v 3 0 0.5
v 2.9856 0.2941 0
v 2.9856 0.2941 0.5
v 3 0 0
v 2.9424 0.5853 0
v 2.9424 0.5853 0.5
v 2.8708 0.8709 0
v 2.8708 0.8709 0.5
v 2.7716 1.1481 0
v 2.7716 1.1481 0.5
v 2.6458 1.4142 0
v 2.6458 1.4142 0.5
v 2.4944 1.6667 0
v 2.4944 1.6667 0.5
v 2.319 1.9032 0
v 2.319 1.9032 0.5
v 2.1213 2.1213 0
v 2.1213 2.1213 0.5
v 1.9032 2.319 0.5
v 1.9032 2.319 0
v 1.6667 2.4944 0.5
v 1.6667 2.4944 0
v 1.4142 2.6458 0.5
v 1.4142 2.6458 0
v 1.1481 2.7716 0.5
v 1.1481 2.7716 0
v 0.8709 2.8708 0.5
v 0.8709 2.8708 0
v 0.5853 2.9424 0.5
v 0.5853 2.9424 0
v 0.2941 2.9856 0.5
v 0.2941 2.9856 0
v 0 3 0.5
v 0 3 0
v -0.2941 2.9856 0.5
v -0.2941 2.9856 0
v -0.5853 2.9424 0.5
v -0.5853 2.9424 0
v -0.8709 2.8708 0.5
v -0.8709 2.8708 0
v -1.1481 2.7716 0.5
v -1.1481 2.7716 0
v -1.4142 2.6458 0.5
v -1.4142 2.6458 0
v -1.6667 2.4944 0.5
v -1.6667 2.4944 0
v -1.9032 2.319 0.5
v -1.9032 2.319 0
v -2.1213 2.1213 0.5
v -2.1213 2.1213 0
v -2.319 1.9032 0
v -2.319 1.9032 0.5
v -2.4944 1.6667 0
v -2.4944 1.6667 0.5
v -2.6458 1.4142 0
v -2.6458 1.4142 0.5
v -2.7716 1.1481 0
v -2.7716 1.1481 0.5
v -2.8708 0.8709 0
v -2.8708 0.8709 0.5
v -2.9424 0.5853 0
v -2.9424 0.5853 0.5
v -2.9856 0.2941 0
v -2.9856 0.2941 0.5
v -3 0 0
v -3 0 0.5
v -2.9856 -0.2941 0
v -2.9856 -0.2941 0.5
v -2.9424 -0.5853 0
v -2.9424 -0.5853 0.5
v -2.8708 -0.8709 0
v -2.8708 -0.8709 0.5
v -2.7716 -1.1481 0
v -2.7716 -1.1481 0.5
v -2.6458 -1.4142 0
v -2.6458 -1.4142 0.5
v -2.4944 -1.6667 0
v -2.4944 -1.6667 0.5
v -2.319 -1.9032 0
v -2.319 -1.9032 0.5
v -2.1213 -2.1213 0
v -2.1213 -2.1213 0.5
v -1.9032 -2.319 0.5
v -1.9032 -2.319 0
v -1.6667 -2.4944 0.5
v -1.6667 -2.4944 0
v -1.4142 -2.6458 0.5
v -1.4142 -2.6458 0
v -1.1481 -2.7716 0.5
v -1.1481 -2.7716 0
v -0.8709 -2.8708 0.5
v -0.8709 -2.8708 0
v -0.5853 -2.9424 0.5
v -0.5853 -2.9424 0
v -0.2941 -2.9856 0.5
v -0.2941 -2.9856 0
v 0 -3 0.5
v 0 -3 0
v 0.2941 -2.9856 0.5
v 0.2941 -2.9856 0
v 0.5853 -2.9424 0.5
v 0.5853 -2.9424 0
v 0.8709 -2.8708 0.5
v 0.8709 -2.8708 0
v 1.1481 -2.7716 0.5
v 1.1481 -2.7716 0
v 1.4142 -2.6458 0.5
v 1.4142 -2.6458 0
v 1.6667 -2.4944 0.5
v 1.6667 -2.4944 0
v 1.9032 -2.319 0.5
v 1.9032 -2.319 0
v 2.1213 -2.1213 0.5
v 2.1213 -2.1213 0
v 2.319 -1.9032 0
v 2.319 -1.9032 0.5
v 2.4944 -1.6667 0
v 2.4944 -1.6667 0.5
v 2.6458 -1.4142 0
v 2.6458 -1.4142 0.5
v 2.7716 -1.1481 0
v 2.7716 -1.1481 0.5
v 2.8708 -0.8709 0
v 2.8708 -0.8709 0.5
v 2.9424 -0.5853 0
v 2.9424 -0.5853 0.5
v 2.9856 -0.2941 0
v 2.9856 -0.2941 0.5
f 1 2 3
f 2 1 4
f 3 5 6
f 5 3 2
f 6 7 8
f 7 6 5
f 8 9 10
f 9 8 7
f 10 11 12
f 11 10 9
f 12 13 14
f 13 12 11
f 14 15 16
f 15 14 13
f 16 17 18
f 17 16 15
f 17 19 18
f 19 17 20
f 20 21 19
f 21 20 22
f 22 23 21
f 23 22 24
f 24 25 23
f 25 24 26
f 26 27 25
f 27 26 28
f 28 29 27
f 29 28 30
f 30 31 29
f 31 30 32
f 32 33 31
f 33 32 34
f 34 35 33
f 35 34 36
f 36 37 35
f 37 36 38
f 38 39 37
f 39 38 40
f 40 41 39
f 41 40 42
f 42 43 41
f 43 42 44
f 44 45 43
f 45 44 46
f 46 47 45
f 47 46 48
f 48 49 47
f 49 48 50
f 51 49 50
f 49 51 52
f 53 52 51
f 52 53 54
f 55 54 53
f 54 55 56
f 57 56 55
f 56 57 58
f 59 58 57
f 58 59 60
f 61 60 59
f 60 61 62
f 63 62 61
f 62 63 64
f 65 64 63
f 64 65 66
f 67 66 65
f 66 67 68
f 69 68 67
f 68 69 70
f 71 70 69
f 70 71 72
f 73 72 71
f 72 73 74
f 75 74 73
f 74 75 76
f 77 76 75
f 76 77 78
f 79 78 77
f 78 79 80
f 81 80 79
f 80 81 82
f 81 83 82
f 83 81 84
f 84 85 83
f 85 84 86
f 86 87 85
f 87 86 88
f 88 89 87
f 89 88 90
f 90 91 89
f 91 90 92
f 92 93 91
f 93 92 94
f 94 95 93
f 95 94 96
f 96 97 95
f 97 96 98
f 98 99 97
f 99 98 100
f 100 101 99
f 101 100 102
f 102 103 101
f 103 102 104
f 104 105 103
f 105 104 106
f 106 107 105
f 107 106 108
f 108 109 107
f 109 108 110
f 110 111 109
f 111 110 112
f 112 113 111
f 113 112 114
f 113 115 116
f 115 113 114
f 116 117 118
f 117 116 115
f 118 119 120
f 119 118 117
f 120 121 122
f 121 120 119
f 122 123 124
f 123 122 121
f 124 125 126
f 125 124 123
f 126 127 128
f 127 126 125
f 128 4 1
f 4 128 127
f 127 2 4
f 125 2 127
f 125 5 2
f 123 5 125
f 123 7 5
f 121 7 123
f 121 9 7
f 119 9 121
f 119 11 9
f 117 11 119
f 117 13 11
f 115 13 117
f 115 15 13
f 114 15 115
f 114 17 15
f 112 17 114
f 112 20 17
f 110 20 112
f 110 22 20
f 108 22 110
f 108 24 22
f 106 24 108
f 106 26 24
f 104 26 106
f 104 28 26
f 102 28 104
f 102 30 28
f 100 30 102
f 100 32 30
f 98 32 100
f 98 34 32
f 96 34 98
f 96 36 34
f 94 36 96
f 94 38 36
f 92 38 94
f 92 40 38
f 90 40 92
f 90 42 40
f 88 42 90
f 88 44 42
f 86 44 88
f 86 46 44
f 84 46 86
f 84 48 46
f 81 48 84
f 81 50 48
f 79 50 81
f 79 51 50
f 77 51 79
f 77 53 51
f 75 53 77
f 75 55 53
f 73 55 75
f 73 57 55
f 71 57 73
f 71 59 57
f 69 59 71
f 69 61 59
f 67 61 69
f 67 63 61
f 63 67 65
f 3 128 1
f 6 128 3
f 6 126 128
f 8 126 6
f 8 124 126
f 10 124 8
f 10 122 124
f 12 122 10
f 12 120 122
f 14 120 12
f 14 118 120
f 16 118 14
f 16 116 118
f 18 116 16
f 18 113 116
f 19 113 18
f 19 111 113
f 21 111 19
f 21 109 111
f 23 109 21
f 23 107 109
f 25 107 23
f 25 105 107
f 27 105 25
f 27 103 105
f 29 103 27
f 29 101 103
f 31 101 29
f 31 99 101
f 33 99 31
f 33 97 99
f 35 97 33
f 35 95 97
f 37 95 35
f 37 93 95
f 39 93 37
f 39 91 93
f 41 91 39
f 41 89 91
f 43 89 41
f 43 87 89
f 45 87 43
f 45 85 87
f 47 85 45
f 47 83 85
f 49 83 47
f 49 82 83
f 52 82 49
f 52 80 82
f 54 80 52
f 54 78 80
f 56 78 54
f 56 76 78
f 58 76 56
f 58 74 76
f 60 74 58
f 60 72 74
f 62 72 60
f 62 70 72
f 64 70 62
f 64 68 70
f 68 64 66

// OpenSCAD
// increase for smoother cone ($fn)
segments = 64;

cylinder(0.5, 3, 3, center = false, $fn = segments);
